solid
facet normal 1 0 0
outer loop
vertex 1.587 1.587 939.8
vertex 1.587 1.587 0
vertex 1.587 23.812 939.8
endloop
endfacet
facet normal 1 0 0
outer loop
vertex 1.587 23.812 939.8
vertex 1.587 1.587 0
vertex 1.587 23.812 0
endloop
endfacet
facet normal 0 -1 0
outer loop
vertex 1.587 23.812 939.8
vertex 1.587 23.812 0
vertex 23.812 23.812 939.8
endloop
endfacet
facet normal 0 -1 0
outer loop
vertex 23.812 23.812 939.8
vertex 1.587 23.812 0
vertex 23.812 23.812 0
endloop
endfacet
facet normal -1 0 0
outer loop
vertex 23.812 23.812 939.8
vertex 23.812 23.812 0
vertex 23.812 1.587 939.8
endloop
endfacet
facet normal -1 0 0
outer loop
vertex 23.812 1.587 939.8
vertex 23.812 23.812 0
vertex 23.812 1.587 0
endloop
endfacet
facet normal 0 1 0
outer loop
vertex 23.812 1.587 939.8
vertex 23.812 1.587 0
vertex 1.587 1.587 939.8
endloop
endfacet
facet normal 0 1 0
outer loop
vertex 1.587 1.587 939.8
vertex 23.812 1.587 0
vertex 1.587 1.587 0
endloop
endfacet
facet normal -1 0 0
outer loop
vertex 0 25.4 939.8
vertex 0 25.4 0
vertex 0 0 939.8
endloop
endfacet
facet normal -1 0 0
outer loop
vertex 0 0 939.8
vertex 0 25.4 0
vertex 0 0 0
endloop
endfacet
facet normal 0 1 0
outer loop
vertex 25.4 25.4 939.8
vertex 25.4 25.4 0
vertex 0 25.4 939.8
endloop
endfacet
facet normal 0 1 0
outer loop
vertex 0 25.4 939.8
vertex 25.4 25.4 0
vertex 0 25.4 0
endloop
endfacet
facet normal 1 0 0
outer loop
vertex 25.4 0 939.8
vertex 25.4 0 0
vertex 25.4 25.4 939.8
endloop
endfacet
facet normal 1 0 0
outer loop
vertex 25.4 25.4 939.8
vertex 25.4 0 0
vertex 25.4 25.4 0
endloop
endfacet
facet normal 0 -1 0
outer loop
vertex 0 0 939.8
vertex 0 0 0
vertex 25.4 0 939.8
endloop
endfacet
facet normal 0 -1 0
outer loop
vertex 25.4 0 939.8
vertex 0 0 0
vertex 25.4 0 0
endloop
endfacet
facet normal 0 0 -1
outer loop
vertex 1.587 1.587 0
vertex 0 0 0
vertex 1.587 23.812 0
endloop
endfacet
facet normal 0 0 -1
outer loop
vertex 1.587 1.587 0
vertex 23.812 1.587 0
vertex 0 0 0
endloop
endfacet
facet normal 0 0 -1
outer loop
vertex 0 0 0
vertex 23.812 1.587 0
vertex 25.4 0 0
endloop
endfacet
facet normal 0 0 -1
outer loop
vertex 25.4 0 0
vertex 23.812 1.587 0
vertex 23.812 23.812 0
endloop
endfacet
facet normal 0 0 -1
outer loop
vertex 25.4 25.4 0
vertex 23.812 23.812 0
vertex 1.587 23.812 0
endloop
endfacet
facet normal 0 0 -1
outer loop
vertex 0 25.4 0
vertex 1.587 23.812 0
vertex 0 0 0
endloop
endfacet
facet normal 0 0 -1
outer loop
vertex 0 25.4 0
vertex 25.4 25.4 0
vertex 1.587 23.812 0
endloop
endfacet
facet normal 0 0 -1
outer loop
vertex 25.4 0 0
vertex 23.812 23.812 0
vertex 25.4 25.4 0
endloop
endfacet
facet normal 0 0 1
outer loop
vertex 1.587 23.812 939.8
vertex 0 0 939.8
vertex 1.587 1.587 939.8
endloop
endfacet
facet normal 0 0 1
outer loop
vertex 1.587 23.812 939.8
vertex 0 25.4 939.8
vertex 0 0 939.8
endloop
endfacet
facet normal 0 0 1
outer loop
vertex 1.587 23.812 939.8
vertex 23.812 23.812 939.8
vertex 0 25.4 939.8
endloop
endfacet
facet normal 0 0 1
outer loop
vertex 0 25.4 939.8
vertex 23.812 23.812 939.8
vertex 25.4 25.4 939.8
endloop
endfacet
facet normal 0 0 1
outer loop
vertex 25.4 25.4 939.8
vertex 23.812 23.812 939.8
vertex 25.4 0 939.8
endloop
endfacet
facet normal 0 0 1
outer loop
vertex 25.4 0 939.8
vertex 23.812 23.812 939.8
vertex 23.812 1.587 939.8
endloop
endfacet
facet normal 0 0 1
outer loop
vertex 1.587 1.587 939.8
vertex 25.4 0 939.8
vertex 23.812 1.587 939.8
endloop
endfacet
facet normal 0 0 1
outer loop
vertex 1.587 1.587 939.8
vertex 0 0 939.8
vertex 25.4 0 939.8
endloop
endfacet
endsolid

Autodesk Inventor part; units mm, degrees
ref_plane "YZ Plane" through (0, 0, 0) normal (1, 0, 0) x (0, 1, 0)
ref_plane "XZ Plane" through (0, 0, 0) normal (0, 1, 0) x (-1, 0, 0)
ref_plane "XY Plane" through (0, 0, 0) normal (0, 0, 1) x (1, 0, 0)
sketch "Sketch1" plane through (0, 0, 0) normal (0, 0, 1) x (1, 0, 0)
  line L0 (0, 0) -> (25.4, 0)
  line L1 (25.4, 0) -> (25.4, 25.4)
  line L2 (25.4, 25.4) -> (0, 25.4)
  line L3 (0, 25.4) -> (0, 0)
  dimension "d0" = 25.4
  dimension "d1" = 25.4
extrude "Extrusion1" add sketch "Sketch1" along normal blind 939.8
shell "Shell1" thickness 1.5875 removed faces 2 at (8.4667, 16.9333, 0) at (8.4667, 16.9333, 939.8)
properties part number "RearFrameRail" material "Aluminum-6061"
